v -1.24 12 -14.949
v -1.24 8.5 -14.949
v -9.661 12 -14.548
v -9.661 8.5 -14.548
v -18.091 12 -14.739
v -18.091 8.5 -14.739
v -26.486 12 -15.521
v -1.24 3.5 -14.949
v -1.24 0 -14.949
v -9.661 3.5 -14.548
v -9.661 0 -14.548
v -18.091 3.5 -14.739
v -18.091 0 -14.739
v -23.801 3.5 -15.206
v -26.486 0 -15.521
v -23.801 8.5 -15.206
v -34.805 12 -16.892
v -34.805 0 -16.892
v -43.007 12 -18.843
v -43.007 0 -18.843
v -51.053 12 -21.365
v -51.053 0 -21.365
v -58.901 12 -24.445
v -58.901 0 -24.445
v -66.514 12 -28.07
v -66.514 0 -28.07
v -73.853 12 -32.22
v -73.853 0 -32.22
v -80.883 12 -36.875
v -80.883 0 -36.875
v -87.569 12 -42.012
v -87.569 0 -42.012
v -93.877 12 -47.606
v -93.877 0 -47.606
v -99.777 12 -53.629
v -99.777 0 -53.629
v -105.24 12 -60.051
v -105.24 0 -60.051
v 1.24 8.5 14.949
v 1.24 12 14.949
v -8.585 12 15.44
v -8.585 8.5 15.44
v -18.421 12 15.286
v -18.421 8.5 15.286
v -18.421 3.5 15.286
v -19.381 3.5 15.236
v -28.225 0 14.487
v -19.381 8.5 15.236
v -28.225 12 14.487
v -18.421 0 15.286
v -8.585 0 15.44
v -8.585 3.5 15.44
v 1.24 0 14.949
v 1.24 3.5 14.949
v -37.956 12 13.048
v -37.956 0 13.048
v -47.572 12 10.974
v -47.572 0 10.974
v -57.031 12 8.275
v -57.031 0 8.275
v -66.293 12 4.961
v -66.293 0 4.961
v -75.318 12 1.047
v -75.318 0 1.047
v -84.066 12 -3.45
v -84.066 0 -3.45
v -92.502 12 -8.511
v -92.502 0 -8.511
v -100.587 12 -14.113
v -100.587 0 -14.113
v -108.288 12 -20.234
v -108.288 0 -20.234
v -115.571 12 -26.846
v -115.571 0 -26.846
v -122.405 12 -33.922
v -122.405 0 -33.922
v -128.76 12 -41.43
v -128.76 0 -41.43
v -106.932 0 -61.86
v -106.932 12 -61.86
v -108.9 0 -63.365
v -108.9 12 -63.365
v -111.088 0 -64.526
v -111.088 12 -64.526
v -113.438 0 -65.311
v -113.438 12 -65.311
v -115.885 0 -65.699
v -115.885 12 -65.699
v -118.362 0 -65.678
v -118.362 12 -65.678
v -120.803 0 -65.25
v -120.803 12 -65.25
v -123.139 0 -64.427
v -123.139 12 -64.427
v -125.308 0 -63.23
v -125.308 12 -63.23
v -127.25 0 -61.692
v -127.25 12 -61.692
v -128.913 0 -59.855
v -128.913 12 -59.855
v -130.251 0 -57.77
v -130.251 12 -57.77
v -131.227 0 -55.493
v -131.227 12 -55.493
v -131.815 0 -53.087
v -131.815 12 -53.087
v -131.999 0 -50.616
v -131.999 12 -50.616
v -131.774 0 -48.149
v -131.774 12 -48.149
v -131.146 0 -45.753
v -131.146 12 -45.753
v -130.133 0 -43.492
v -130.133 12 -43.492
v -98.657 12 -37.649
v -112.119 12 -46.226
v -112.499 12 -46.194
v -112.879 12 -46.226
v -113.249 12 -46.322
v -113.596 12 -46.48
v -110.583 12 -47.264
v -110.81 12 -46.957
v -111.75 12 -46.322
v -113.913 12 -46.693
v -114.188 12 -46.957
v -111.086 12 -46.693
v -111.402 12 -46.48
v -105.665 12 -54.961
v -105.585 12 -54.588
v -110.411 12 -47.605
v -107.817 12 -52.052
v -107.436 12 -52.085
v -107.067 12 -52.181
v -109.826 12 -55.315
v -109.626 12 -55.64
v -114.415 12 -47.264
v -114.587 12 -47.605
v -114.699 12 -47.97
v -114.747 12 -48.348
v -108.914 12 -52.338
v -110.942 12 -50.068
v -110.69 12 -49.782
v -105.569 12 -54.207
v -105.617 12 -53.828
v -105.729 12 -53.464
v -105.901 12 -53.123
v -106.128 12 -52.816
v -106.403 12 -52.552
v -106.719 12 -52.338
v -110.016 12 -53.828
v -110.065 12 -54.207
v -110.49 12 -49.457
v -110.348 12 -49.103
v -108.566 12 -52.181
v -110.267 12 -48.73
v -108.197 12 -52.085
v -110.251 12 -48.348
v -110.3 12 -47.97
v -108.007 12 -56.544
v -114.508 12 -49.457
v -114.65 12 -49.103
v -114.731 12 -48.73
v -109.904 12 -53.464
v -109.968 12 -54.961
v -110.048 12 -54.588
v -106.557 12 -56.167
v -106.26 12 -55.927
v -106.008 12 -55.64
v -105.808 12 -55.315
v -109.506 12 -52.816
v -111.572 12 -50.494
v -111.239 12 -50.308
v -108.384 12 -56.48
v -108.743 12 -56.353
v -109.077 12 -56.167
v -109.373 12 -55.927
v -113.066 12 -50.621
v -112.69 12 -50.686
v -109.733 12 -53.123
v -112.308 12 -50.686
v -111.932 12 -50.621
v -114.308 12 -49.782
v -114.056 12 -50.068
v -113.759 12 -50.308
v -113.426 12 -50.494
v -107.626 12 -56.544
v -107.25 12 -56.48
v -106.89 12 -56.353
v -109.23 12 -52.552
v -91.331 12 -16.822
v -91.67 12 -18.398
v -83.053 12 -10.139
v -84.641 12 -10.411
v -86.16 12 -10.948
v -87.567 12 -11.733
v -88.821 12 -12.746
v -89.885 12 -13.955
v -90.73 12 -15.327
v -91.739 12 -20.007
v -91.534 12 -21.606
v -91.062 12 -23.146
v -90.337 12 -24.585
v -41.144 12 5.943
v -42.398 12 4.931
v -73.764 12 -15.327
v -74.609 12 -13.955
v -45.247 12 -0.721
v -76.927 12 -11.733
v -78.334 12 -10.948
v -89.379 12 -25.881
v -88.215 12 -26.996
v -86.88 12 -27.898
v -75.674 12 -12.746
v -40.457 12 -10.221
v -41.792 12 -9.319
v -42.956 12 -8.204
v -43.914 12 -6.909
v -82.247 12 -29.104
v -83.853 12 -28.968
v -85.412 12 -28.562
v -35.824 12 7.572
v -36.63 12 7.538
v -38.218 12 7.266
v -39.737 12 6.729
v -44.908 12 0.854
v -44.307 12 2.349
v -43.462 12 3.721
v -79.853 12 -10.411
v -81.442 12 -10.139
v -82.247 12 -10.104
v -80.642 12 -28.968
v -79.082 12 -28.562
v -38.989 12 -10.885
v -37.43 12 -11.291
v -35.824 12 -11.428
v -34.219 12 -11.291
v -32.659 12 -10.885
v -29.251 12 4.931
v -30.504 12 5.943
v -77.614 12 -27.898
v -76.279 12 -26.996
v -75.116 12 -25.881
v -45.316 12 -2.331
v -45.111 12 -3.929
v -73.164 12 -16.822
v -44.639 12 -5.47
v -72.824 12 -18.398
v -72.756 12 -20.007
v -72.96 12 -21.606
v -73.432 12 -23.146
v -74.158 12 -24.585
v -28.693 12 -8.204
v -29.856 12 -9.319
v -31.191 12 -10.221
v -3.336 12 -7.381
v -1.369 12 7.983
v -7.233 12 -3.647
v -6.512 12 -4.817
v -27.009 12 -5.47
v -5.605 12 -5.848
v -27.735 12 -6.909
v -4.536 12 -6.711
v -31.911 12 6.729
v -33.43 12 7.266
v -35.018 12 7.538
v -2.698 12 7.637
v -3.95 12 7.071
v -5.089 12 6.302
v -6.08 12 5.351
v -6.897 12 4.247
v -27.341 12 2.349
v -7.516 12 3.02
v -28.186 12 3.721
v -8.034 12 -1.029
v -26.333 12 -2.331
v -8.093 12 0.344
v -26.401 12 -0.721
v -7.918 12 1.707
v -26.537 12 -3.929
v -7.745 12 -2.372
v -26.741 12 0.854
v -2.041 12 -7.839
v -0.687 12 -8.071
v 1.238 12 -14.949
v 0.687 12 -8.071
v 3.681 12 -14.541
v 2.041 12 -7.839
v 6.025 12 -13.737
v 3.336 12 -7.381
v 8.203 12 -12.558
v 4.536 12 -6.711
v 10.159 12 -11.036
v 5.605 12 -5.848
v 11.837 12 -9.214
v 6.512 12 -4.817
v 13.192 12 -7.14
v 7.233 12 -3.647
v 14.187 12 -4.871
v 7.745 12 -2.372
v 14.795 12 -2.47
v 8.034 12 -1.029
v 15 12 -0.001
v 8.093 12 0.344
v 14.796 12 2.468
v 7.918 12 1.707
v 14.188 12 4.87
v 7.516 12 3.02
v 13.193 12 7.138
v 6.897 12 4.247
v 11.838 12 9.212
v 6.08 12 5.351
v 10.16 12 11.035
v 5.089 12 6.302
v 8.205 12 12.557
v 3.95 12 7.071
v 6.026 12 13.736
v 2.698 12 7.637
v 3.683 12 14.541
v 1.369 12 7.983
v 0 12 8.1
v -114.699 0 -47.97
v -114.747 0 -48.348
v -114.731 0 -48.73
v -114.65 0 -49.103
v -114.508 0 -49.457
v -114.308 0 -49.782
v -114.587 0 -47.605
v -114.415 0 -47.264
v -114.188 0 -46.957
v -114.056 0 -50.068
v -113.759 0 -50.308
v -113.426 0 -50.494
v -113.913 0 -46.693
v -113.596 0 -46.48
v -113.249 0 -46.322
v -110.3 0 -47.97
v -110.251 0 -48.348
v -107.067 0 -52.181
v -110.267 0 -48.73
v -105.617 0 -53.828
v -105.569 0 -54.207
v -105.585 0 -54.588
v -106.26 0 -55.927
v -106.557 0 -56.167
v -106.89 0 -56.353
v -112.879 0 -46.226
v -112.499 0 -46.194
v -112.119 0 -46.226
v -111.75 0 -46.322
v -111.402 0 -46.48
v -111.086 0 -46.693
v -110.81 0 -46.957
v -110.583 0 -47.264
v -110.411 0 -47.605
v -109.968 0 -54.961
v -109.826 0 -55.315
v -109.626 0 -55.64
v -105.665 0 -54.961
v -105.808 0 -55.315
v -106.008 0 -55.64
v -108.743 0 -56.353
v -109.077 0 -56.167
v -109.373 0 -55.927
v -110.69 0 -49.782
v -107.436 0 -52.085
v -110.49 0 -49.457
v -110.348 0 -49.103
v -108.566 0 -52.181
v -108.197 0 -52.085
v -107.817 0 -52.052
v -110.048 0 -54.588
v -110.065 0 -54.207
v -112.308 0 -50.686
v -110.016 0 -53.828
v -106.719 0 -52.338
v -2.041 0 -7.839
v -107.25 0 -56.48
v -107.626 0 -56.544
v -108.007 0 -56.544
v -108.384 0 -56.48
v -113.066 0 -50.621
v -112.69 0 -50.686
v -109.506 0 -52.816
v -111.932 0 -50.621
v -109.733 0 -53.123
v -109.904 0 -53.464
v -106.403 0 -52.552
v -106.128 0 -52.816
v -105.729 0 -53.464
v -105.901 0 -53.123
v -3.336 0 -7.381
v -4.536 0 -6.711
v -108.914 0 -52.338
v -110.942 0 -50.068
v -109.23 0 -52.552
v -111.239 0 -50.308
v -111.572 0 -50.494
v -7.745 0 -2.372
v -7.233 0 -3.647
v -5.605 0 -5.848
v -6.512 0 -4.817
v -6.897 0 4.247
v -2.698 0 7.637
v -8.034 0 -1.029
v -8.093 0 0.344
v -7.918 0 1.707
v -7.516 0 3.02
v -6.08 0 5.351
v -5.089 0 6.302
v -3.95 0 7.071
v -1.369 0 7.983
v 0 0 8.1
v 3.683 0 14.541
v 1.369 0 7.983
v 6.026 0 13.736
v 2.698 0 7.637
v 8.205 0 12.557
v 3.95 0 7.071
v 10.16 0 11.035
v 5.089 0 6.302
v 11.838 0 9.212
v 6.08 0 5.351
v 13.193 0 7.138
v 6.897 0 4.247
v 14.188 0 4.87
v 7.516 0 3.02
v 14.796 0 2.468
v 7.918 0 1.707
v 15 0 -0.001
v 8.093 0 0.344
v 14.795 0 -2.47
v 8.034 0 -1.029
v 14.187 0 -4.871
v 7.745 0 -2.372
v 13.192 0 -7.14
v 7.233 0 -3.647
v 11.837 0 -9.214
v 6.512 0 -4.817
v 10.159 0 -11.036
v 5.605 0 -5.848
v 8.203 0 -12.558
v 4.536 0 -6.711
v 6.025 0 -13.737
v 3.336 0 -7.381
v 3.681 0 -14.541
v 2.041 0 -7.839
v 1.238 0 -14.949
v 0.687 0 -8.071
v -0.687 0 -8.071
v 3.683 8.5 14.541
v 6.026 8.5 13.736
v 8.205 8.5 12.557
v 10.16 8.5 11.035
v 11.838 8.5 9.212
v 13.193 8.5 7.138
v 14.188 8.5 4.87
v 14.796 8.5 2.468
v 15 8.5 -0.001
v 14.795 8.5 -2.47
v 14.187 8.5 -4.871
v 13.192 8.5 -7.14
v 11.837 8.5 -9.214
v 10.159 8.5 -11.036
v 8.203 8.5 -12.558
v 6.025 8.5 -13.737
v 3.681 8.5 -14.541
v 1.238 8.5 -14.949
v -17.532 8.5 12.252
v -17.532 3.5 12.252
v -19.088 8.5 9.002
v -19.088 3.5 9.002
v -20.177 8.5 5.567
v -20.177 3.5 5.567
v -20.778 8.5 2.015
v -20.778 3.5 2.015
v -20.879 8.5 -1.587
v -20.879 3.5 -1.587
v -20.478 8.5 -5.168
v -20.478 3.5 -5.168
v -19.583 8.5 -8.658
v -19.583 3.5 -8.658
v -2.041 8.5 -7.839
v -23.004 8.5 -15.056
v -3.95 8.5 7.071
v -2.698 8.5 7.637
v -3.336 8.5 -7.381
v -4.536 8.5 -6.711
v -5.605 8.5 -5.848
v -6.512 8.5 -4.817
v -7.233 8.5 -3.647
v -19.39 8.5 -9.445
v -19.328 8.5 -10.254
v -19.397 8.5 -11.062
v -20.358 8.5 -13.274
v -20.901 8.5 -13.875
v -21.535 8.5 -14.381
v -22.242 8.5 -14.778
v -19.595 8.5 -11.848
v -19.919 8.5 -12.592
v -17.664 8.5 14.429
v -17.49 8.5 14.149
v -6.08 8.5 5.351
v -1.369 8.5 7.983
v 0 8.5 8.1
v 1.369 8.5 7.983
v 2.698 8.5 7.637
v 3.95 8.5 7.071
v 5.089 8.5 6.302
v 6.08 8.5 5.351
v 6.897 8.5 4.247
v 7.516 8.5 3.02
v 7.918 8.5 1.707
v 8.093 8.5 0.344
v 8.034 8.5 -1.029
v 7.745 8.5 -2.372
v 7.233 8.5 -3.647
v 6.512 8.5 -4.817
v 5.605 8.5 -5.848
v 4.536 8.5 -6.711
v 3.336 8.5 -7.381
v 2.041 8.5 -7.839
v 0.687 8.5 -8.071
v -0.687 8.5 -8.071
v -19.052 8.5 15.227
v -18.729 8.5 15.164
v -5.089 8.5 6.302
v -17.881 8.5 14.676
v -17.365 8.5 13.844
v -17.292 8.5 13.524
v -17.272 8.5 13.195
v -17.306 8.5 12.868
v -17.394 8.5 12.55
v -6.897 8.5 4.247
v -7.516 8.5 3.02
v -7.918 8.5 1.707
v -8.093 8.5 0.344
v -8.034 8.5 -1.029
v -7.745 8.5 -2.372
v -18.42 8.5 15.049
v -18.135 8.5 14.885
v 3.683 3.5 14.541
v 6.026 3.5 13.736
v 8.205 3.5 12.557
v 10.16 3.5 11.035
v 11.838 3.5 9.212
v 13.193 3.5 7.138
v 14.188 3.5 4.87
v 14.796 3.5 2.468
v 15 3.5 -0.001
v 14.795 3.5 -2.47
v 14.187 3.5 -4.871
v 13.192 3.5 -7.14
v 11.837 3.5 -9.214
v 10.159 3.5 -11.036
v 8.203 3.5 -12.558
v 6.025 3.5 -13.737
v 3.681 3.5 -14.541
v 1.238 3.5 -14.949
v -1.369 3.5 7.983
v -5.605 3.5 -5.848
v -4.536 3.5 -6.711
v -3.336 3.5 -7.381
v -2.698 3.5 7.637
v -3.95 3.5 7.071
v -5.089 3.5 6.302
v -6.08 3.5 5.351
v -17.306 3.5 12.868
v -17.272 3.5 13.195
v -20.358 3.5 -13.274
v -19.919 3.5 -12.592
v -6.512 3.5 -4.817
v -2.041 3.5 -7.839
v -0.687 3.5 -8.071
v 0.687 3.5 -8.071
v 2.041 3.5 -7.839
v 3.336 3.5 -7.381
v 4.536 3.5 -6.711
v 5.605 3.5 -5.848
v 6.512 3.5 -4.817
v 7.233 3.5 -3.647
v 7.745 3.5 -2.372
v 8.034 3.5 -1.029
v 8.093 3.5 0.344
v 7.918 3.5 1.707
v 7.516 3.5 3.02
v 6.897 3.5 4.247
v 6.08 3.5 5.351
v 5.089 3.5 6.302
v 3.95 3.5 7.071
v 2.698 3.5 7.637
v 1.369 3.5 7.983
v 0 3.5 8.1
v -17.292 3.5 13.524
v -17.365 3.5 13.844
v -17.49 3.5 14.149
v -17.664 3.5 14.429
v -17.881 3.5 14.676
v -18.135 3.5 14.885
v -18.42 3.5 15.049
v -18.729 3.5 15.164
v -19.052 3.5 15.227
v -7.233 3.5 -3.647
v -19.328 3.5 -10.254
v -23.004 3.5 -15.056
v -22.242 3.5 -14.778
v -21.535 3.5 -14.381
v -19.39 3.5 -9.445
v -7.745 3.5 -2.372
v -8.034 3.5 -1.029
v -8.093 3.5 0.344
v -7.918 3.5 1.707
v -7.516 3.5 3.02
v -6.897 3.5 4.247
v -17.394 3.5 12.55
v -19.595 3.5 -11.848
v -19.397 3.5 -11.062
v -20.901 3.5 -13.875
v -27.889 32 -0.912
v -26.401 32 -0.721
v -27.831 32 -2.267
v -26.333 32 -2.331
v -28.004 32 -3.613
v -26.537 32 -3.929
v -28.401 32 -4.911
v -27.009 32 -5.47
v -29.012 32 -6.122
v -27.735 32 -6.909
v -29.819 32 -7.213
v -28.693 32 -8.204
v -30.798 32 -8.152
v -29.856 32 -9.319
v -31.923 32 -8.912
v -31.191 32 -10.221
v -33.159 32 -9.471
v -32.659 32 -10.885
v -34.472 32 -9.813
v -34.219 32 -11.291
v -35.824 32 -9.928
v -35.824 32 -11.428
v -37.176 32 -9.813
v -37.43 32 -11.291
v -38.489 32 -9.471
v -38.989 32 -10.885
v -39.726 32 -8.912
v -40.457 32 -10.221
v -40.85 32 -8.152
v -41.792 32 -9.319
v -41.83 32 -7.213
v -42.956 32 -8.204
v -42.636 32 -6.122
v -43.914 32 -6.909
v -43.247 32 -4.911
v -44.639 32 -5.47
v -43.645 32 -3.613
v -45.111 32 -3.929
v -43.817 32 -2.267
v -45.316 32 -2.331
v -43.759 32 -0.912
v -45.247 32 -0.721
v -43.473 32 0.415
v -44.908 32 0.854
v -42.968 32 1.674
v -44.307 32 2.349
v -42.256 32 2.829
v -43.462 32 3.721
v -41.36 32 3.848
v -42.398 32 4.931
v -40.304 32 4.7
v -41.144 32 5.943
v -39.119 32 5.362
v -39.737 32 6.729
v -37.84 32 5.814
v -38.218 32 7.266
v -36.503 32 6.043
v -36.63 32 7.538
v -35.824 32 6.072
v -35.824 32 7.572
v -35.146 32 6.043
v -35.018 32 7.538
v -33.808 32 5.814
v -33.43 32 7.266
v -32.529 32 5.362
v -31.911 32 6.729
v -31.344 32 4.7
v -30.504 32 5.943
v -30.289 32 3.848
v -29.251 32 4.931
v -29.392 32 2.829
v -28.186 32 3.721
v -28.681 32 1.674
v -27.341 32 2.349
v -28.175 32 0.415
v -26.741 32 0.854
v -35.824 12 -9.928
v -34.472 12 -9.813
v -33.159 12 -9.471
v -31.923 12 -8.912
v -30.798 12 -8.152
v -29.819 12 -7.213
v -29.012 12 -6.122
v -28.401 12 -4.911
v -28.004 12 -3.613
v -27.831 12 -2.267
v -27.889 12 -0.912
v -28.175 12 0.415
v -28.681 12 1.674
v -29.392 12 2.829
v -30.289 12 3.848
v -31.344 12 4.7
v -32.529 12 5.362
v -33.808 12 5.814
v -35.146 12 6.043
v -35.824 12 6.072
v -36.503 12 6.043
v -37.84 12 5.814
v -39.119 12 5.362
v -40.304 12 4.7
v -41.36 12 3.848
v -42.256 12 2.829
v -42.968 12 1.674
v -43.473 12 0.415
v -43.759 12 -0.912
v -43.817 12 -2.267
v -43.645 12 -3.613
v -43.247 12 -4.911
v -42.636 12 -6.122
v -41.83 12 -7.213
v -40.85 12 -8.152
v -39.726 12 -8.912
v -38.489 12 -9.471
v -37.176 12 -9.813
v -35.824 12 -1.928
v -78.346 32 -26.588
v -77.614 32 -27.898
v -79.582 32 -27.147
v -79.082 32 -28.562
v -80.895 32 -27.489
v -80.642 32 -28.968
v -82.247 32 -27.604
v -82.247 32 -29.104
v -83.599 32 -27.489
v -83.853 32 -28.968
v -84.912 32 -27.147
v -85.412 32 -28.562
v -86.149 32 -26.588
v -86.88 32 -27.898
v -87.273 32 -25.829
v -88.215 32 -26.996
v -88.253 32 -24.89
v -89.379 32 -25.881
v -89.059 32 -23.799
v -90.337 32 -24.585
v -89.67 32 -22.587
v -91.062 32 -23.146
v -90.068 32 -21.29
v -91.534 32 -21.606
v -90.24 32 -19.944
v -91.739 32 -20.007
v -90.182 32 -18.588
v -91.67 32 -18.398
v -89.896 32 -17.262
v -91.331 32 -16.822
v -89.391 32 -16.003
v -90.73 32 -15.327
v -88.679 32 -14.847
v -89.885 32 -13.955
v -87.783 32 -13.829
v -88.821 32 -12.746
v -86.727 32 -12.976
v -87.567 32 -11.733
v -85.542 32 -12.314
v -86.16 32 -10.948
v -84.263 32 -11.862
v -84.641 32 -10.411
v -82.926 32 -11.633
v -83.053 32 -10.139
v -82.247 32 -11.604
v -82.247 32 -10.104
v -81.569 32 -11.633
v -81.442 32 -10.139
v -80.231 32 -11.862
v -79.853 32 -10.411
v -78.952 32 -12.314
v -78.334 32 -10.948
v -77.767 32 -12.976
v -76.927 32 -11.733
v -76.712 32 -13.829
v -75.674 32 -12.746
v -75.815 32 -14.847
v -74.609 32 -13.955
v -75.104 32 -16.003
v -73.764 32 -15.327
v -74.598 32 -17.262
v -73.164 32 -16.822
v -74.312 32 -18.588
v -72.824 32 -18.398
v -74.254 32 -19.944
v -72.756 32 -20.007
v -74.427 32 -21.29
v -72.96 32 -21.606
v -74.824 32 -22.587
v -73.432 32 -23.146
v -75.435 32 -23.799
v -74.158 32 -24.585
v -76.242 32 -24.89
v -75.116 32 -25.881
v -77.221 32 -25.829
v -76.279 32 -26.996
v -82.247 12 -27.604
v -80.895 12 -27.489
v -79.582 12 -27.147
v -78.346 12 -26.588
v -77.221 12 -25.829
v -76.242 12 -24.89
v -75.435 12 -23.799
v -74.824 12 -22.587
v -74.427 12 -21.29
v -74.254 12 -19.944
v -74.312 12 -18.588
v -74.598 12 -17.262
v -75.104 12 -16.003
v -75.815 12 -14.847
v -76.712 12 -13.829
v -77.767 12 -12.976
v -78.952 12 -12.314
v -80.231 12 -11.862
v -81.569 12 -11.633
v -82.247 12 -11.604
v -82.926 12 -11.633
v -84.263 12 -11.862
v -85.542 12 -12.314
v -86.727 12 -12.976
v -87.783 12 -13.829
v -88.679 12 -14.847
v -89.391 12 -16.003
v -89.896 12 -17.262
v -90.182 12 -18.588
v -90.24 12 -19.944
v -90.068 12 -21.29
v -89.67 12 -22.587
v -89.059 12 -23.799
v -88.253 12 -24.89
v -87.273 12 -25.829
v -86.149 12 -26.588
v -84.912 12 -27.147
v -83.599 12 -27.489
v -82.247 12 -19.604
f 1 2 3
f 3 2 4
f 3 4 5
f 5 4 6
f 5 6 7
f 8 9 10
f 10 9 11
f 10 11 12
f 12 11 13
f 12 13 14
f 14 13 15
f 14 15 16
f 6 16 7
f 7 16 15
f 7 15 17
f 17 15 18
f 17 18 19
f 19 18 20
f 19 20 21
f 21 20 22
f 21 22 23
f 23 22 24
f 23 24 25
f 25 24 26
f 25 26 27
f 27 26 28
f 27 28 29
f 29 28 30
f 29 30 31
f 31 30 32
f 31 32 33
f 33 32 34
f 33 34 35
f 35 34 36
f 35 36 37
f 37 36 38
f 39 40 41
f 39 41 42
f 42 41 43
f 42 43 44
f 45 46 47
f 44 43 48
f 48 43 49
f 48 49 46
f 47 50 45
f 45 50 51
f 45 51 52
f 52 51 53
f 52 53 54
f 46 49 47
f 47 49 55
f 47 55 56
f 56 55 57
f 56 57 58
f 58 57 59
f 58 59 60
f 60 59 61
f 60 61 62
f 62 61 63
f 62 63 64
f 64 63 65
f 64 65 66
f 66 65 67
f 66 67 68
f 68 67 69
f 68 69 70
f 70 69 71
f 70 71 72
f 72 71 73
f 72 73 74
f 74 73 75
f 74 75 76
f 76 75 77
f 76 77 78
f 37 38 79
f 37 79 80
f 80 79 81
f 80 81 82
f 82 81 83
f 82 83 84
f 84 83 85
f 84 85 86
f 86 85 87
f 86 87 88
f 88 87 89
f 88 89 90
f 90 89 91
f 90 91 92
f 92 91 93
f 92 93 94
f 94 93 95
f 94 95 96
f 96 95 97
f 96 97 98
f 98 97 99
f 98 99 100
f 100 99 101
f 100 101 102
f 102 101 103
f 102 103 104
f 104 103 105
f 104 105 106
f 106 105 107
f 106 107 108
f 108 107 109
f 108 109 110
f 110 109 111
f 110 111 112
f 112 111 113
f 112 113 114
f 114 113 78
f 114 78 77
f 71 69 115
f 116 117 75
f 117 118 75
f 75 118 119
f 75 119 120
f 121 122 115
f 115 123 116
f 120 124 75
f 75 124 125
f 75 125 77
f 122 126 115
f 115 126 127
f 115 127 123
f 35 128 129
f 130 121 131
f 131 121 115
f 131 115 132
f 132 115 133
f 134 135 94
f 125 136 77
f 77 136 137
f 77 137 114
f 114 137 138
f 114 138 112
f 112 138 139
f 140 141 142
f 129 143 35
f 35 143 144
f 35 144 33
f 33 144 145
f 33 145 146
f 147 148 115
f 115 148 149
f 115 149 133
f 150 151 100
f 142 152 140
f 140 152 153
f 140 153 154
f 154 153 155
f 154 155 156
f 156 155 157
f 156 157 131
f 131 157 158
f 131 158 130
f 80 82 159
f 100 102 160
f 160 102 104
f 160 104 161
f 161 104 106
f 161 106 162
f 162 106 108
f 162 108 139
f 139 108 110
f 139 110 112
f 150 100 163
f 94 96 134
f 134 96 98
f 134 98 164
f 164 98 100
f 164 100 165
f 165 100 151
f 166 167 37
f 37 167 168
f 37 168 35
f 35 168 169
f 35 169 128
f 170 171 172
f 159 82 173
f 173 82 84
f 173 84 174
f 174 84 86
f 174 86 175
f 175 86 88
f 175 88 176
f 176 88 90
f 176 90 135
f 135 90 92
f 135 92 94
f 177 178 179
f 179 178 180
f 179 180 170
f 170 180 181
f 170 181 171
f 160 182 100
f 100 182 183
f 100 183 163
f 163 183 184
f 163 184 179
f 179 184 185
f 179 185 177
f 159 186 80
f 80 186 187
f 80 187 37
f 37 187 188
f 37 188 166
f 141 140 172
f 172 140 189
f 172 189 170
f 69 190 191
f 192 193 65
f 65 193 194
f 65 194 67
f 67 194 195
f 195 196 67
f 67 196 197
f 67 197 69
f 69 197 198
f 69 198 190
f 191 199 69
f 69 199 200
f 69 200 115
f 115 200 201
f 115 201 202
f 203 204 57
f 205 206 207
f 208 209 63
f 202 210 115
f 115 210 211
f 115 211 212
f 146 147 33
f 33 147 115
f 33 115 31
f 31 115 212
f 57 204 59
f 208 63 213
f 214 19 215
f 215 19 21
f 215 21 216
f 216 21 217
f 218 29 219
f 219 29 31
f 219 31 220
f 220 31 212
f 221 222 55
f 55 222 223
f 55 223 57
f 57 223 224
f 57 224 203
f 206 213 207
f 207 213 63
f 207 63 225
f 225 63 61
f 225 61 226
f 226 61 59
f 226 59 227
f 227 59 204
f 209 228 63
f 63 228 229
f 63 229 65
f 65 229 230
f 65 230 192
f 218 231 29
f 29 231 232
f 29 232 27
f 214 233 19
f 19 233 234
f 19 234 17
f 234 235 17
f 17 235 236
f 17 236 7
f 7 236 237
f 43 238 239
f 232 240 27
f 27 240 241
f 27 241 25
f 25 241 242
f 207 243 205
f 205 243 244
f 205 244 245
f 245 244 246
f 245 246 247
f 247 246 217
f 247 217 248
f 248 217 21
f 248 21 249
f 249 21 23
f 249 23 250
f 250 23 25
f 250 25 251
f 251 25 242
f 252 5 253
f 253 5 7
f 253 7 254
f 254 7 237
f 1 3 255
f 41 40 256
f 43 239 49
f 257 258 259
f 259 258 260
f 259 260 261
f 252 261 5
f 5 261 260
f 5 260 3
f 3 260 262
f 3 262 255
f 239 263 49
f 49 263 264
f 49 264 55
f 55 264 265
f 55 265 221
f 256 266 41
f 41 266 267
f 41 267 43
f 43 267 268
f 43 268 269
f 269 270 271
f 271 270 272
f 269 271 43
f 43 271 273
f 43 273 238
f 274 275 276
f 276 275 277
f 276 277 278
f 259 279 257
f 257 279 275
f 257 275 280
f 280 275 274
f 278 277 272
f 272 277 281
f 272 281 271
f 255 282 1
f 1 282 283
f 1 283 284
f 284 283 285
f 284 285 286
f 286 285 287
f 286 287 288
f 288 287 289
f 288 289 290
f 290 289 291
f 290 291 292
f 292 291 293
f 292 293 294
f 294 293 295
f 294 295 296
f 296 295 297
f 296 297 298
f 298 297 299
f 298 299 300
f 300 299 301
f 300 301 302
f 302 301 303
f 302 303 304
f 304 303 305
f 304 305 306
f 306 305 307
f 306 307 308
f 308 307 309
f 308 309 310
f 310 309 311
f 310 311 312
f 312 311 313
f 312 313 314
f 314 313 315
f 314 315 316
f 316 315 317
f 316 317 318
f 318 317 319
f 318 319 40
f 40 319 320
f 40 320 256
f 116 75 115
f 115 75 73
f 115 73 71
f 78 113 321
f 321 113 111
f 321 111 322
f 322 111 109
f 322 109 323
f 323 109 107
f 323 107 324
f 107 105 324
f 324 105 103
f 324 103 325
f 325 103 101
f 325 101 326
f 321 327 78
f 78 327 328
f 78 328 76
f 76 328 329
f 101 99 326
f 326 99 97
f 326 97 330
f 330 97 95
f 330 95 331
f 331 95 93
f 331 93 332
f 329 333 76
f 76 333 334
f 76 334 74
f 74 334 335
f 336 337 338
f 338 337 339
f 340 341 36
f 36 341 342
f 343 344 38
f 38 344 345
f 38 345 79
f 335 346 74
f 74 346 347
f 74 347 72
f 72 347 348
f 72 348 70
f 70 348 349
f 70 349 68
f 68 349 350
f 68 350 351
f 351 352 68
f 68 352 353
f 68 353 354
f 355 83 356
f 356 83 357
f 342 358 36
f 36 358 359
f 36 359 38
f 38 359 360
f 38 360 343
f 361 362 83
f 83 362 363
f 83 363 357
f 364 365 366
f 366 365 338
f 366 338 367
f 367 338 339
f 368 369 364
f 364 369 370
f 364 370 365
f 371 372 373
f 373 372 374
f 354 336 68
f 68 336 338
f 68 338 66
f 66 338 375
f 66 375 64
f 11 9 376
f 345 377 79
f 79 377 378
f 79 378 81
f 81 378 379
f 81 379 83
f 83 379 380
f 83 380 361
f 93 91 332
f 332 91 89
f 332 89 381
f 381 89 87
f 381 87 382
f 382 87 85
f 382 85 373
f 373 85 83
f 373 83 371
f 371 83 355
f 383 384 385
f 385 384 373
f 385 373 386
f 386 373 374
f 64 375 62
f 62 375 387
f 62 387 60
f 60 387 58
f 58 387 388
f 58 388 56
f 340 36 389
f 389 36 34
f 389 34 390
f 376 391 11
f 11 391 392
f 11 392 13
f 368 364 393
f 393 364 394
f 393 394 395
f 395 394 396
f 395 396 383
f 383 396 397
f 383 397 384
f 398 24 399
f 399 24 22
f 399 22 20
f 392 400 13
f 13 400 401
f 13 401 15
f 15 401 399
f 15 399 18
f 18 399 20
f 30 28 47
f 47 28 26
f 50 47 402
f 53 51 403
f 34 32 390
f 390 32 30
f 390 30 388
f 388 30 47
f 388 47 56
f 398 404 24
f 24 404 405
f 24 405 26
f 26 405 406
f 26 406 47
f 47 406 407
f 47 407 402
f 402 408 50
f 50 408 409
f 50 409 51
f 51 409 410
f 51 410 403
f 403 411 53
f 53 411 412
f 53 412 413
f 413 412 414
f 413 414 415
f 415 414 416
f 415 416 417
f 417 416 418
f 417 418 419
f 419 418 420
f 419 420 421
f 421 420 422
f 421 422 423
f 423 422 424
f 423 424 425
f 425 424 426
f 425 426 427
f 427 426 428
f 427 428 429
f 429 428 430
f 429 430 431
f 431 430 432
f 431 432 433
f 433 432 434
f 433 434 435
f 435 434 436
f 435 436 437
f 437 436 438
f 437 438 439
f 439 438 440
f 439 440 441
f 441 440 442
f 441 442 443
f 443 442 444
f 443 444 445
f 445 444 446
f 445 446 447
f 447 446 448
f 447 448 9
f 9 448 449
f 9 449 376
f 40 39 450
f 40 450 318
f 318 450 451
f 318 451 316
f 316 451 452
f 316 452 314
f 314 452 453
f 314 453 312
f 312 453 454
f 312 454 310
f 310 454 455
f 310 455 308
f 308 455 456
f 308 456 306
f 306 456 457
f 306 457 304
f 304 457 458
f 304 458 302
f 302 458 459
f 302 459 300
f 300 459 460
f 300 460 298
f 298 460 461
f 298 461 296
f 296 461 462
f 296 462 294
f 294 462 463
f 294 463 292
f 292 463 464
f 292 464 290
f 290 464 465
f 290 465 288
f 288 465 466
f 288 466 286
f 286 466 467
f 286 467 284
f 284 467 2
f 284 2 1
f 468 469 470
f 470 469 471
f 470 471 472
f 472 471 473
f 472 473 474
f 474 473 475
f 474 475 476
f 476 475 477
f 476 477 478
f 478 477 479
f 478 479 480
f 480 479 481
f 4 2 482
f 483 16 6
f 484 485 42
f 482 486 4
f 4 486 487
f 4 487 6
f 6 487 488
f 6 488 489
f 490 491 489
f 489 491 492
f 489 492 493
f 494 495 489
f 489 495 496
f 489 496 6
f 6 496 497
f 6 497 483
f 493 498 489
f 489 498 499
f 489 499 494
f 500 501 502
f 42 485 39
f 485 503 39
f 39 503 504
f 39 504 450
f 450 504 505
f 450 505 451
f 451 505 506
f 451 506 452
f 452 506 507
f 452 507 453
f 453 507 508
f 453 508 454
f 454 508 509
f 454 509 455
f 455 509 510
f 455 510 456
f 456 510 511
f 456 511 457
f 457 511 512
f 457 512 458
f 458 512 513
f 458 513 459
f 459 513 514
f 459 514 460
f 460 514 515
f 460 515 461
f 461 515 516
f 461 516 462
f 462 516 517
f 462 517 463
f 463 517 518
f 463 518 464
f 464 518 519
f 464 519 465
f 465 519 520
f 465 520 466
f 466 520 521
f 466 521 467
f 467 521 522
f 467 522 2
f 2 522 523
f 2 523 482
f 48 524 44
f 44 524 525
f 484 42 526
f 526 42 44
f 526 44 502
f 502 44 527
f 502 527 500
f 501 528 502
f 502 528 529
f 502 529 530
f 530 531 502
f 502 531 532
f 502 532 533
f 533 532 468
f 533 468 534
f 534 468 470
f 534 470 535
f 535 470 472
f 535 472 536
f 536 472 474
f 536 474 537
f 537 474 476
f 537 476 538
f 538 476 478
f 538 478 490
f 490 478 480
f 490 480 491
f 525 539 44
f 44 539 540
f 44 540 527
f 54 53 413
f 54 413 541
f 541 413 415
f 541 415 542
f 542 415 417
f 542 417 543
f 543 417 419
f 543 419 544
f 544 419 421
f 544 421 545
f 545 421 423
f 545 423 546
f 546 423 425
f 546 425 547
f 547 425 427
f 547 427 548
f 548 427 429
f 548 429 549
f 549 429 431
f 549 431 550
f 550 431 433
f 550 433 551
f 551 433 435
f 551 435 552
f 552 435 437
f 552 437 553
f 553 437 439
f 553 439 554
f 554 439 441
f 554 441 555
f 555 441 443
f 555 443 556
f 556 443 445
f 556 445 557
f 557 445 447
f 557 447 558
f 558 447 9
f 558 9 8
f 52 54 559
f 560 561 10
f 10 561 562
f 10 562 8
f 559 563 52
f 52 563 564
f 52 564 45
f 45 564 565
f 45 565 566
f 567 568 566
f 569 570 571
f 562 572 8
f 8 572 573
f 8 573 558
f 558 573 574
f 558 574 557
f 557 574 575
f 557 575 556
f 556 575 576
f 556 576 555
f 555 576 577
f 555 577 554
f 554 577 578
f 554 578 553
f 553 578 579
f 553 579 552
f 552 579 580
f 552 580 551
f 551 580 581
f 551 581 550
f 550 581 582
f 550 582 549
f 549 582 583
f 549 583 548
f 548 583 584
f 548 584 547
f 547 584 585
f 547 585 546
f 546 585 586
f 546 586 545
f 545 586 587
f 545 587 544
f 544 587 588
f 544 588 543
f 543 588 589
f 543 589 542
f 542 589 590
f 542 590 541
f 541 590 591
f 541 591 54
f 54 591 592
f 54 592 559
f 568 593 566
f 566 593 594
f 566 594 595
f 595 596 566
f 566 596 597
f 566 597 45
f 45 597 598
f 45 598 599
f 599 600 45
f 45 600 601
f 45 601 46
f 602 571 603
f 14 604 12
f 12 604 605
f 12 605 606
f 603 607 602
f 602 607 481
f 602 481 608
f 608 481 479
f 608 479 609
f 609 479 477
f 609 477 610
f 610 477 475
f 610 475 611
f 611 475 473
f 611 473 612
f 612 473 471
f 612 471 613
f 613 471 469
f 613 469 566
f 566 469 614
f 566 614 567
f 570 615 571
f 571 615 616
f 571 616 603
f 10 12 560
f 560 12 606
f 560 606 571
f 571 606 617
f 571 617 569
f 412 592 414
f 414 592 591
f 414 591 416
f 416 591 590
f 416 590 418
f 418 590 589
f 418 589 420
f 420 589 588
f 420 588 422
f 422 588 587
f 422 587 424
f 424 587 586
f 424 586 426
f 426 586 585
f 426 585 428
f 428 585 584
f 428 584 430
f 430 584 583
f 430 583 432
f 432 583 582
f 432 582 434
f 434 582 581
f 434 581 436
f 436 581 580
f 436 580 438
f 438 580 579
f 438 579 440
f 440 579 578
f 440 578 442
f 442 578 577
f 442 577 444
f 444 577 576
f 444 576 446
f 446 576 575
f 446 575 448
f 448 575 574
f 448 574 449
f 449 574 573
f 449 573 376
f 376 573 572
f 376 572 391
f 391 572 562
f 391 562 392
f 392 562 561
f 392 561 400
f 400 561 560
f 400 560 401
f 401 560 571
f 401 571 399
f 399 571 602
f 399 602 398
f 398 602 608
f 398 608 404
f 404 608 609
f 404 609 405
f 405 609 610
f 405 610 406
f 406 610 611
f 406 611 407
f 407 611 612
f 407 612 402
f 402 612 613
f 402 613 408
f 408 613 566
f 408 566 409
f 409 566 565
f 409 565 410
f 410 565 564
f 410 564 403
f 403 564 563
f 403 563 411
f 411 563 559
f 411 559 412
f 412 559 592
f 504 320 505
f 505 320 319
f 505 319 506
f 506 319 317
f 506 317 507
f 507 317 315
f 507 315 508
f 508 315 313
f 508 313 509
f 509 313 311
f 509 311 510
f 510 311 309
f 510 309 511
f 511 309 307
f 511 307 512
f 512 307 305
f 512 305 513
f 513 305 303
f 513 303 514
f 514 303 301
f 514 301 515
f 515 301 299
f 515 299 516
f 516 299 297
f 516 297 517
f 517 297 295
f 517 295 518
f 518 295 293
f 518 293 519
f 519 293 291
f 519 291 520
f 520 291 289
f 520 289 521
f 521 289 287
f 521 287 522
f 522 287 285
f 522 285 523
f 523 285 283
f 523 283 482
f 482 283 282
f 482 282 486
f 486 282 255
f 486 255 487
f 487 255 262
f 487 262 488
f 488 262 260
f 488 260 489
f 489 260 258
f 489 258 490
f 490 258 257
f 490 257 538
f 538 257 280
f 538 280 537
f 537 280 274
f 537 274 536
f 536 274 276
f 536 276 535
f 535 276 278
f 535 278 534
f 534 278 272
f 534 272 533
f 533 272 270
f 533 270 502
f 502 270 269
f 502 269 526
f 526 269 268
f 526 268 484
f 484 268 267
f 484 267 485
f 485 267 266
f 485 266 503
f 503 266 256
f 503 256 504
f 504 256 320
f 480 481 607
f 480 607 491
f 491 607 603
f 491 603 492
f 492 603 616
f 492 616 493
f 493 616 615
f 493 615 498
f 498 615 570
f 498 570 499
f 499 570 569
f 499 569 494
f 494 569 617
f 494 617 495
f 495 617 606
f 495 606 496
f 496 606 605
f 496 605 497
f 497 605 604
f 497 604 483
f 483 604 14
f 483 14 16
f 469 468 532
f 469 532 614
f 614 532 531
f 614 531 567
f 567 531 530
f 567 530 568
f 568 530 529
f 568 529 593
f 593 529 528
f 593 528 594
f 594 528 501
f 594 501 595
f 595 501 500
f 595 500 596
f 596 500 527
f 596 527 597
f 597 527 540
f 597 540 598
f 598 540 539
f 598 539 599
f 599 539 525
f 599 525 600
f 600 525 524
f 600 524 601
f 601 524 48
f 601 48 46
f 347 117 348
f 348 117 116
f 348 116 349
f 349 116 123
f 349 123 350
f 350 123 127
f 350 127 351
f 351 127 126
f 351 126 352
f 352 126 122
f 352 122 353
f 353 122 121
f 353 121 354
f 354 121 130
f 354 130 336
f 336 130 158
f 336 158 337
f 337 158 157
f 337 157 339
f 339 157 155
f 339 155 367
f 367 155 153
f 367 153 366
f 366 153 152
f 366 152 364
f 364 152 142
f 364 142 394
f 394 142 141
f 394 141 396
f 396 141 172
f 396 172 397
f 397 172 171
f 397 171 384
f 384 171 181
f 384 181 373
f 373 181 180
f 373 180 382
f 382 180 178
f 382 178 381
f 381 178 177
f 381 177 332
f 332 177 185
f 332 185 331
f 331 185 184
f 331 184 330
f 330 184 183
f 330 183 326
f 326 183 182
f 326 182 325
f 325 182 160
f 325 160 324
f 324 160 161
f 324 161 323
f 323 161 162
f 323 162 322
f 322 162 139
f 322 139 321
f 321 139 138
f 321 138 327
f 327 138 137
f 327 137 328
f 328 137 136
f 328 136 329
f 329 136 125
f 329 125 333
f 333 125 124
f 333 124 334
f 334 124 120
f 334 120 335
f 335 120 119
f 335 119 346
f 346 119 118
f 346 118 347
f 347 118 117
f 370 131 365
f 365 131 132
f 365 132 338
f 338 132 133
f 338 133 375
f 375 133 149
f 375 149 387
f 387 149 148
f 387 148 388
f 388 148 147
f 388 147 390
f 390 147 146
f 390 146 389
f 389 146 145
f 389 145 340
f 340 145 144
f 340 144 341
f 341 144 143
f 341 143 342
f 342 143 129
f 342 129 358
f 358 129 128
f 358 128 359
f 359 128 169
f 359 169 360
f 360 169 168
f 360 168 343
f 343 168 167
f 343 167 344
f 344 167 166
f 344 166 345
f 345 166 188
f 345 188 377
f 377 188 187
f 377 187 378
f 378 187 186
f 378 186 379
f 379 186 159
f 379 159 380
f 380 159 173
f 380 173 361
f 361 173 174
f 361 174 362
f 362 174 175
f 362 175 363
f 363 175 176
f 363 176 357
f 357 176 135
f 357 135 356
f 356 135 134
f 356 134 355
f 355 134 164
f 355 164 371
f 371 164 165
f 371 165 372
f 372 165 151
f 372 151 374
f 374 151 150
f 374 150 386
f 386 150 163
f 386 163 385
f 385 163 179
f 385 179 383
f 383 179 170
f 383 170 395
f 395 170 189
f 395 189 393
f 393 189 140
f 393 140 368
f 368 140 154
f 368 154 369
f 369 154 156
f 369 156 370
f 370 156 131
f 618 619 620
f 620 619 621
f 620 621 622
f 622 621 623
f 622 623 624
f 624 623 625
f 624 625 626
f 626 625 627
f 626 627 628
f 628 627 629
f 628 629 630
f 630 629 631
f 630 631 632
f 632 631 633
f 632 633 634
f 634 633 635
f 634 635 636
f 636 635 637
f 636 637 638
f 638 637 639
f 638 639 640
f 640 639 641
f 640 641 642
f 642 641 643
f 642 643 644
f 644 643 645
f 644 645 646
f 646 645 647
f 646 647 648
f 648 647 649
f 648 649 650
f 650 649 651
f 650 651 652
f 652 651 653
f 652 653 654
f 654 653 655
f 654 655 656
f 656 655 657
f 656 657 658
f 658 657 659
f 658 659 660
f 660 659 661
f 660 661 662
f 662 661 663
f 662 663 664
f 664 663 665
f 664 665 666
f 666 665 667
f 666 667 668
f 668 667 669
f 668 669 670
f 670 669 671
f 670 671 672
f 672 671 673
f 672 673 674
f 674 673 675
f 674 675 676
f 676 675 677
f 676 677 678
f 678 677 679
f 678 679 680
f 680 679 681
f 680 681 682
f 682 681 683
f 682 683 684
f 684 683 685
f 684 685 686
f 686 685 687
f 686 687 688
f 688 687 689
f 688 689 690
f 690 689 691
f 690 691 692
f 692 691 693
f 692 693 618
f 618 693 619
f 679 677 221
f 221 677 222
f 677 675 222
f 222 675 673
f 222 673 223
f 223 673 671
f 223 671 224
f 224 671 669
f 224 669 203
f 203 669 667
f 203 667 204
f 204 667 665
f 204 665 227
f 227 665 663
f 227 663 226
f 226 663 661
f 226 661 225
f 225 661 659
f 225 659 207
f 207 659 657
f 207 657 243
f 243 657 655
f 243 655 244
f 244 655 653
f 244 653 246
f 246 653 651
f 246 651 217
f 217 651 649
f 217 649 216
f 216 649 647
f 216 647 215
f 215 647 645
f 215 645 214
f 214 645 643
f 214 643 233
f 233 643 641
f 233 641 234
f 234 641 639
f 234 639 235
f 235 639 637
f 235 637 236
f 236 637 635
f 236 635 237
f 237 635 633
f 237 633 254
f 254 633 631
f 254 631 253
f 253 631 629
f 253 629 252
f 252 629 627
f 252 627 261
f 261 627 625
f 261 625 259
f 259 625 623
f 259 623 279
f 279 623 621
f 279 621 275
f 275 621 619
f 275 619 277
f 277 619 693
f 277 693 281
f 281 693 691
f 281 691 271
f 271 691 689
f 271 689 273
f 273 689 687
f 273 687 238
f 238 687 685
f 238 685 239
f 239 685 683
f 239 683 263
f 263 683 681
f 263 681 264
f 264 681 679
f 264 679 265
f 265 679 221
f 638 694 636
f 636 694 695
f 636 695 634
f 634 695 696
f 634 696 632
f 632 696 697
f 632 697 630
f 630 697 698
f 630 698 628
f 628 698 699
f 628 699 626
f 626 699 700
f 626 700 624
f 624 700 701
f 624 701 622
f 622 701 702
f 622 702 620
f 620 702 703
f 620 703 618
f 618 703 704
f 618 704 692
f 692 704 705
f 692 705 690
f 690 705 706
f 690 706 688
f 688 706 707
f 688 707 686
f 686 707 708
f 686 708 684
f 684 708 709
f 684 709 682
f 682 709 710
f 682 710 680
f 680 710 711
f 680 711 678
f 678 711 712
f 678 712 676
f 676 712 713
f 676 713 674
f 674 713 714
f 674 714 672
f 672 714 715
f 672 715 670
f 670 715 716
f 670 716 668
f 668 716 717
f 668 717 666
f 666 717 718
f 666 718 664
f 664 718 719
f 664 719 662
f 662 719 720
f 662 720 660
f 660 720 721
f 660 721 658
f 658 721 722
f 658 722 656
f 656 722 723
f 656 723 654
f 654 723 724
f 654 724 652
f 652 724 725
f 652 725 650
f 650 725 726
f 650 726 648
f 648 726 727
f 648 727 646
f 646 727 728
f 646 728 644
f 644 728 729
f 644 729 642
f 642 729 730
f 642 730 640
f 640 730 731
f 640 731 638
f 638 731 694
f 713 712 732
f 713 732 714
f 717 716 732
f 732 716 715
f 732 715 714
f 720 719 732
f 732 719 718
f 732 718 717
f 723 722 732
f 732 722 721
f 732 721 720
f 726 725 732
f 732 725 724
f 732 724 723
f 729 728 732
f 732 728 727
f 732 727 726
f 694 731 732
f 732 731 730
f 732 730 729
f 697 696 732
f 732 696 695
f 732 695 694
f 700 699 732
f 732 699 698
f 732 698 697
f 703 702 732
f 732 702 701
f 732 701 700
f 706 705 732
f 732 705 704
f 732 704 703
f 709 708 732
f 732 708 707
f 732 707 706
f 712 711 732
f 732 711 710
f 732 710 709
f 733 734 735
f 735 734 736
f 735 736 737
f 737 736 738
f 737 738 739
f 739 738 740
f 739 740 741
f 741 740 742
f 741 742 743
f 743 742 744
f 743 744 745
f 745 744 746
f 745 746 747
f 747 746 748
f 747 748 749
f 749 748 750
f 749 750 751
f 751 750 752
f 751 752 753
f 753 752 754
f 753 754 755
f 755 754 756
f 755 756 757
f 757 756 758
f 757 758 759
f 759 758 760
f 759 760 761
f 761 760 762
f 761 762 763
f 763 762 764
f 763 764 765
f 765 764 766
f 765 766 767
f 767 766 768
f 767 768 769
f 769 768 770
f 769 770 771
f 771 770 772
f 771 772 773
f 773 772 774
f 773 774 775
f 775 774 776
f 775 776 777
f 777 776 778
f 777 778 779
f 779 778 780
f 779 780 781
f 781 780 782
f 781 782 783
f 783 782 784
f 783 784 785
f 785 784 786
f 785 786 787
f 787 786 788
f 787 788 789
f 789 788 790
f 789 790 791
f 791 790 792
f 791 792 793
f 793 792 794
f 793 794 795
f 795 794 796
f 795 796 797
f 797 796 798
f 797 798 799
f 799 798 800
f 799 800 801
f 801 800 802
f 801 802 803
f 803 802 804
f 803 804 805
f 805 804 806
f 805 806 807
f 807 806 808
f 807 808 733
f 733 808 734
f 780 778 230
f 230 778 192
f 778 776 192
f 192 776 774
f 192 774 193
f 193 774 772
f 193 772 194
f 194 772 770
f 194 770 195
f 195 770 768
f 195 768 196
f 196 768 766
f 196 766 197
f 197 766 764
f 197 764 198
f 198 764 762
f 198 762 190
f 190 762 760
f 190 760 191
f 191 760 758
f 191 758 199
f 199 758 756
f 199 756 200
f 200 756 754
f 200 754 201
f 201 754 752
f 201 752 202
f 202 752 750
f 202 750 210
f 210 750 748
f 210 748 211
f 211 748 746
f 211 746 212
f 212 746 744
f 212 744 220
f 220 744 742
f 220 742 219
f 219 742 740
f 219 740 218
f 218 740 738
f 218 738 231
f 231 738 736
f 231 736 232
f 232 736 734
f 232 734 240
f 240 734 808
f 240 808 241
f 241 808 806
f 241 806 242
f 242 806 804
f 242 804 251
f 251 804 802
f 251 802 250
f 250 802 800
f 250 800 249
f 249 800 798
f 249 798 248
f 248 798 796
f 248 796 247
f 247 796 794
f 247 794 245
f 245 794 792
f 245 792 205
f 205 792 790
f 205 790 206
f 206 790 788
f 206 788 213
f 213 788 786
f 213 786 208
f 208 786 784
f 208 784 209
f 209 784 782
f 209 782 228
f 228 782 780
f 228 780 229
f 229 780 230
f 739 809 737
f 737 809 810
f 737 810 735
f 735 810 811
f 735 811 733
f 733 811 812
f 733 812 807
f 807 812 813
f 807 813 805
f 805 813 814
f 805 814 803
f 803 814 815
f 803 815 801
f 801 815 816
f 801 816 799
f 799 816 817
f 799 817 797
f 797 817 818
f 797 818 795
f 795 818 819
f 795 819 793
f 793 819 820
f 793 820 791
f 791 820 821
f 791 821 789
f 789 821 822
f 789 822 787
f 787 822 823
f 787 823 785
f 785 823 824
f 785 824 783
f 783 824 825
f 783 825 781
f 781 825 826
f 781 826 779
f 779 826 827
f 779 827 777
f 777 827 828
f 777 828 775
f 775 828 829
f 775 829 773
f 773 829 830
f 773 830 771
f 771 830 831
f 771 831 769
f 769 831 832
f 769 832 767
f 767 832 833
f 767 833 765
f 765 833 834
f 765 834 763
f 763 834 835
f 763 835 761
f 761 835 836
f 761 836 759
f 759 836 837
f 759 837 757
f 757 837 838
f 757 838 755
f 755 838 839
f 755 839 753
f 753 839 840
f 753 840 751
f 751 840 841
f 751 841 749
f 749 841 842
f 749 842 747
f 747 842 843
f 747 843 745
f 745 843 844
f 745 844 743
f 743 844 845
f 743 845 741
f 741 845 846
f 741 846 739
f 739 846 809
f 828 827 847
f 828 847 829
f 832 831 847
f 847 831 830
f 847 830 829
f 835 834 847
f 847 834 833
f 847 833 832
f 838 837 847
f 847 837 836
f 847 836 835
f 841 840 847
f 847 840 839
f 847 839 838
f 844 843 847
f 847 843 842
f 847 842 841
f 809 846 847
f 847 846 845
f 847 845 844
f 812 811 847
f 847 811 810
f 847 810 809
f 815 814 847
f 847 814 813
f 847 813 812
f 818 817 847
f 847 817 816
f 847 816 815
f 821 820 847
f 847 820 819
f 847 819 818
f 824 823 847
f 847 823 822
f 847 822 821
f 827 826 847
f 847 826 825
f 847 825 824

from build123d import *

# Parameters (mm, degrees)
BOSS_EXTRUDE4_DEPTH = 11.999999999999996
BOSS_EXTRUDE5_DEPTH = 3.5
BOSS_EXTRUDE6_DEPTH = 12
CUT_EXTRUDE2_DEPTH  = 8.5
BOSS_EXTRUDE7_DEPTH = 3.5000000000000004
SKETCH2_R           = 8.1
CUT_EXTRUDE3_DEPTH  = 12
FILLET1_R           = 5
FILLET2_R           = 2
SKETCH3_R           = 2.2499999999999964
CUT_EXTRUDE4_DEPTH  = 12
SKETCH4_R           = 9.500000000000002
SKETCH4_R_2         = 8.000000000000002
SKETCH4_R_3         = 9.499999999999995
SKETCH4_R_4         = 7.999999999999998
BOSS_EXTRUDE8_DEPTH = 20


with BuildPart() as part:
    # Sketch1 → Boss-Extrude4 (new body)
    with BuildSketch(Plane(origin=(0, 0, 0), x_dir=(1, 0, 0), z_dir=(0, 1, 0))):
        with BuildLine():
            ThreePointArc((-105.23956914411866, 60.05130546378884), (-126.31086817026393, 62.500868149406244), (-128.76043085588134, 41.429569123260976))
            ThreePointArc((-128.76043085588134, 41.42956912326096), (-78.3921989201775, 0.4513014224205847), (-15.424890802752289, -15.400995588922257))
            ThreePointArc((-15.424890802752284, -15.400995588922251), (-20.878753235246265, -0.5691494549701637), (-16.67921047602729, 14.665420305521598))
            ThreePointArc((-16.679210476027265, 14.665420305521593), (-65.8857769449076, 27.74562513419724), (-105.23956914411866, 60.05130546378885))
        make_face()
    extrude(amount=BOSS_EXTRUDE4_DEPTH)

    # Sketch1<6> → Boss-Extrude5 (add)
    with BuildSketch(Plane(origin=(0, 0, 0), x_dir=(1, 0, 0), z_dir=(0, 1, 0))):
        with BuildLine():
            ThreePointArc((-16.67921047602729, 14.665420305521598), (-20.878753235246265, -0.5691494549701637), (-15.424890802752284, -15.400995588922251))
            ThreePointArc((-15.424890802752289, -15.400995588922257), (-7.086372530747029, -15.406529466177687), (1.2395691441186596, -14.94869453621115))
            ThreePointArc((1.2395691441186607, -14.948694536211157), (14.948694536211152, 1.2395691441186514), (-1.2395691441186483, 14.948694536211152))
            ThreePointArc((-1.2395691441186347, 14.94869453621115), (-8.954828429393212, 14.55844291928571), (-16.679210476027265, 14.665420305521593))
        make_face()
    extrude(amount=BOSS_EXTRUDE5_DEPTH)

    # Sketch1<8> → Boss-Extrude6 (add)
    with BuildSketch(Plane(origin=(0, 0, 0), x_dir=(1, 0, 0), z_dir=(0, 1, 0))):
        with BuildLine():
            ThreePointArc((-16.67921047602729, 14.665420305521598), (-20.878753235246265, -0.5691494549701637), (-15.424890802752284, -15.400995588922251))
            ThreePointArc((-15.424890802752289, -15.400995588922257), (-7.086372530747029, -15.406529466177687), (1.2395691441186596, -14.94869453621115))
            ThreePointArc((1.2395691441186607, -14.948694536211157), (14.948694536211152, 1.2395691441186514), (-1.2395691441186483, 14.948694536211152))
            ThreePointArc((-1.2395691441186347, 14.94869453621115), (-8.954828429393212, 14.55844291928571), (-16.679210476027265, 14.665420305521593))
        make_face()
    extrude(amount=BOSS_EXTRUDE6_DEPTH)

    # Sketch1<9> → Cut-Extrude2 (cut)
    with BuildSketch(Plane(origin=(0, 0, 0), x_dir=(1, 0, 0), z_dir=(0, 1, 0))):
        with BuildLine():
            ThreePointArc((-16.67921047602729, 14.665420305521598), (-20.878753235246265, -0.5691494549701637), (-15.424890802752284, -15.400995588922251))
            ThreePointArc((-15.424890802752289, -15.400995588922257), (-7.086372530747029, -15.406529466177687), (1.2395691441186596, -14.94869453621115))
            ThreePointArc((1.2395691441186607, -14.948694536211157), (14.948694536211152, 1.2395691441186514), (-1.2395691441186483, 14.948694536211152))
            ThreePointArc((-1.2395691441186347, 14.94869453621115), (-8.954828429393212, 14.55844291928571), (-16.679210476027265, 14.665420305521593))
        make_face()
    extrude(amount=CUT_EXTRUDE2_DEPTH, mode=Mode.SUBTRACT)

    # Sketch1<10> → Boss-Extrude7 (add)
    with BuildSketch(Plane(origin=(0, 0, 0), x_dir=(1, 0, 0), z_dir=(0, 1, 0))):
        with BuildLine():
            ThreePointArc((-16.67921047602729, 14.665420305521598), (-20.878753235246265, -0.5691494549701637), (-15.424890802752284, -15.400995588922251))
            ThreePointArc((-15.424890802752289, -15.400995588922257), (-7.086372530747029, -15.406529466177687), (1.2395691441186596, -14.94869453621115))
            ThreePointArc((1.2395691441186607, -14.948694536211157), (14.948694536211152, 1.2395691441186514), (-1.2395691441186483, 14.948694536211152))
            ThreePointArc((-1.2395691441186347, 14.94869453621115), (-8.954828429393212, 14.55844291928571), (-16.679210476027265, 14.665420305521593))
        make_face()
    extrude(amount=BOSS_EXTRUDE7_DEPTH)

    # Sketch2 → Cut-Extrude3 (cut)
    with BuildSketch(Plane(origin=(0, 11.999999999999996, 0), x_dir=(1, 0, 0), z_dir=(0, 1, 0))):
        Circle(SKETCH2_R)
    extrude(amount=-CUT_EXTRUDE3_DEPTH, mode=Mode.SUBTRACT)

    # Fillet1
    fillet1_edges = [part.edges().sort_by_distance(p)[0] for p in [
        (-16.67921047602728, 6, -14.665420305521597),
    ]]
    fillet(fillet1_edges, radius=FILLET1_R)

    # Fillet2
    fillet2_edges = [part.edges().sort_by_distance(p)[0] for p in [
        (-15.424890802752289, 6, 15.400995588922266),
    ]]
    fillet(fillet2_edges, radius=FILLET2_R)

    # Sketch3 → Cut-Extrude4 (cut)
    with BuildSketch(Plane(origin=(0, 11.999999999999996, 0), x_dir=(1, 0, 0), z_dir=(0, 1, 0))):
        with Locations((-107.81660725396851, 54.30249040498051)):
            Circle(SKETCH3_R)
        with Locations((-112.49908312253997, 48.44378579216329)):
            Circle(SKETCH3_R)
    extrude(amount=-CUT_EXTRUDE4_DEPTH, mode=Mode.SUBTRACT)

    # Sketch4 → Boss-Extrude8 (add)
    # profile 1 of 2: a face of its own
    with BuildSketch(Plane(origin=(0, 11.999999999999996, 0), x_dir=(1, 0, 0), z_dir=(0, 1, 0))):
        with Locations((-35.824132830362714, 1.9278264844930209)):
            Circle(SKETCH4_R)
        with Locations((-35.824132830362714, 1.9278264844930209)):
            Circle(SKETCH4_R_2, mode=Mode.SUBTRACT)
    # profile 2 of 2: a face of its own
    with BuildSketch(Plane(origin=(0, 11.999999999999996, 0), x_dir=(1, 0, 0), z_dir=(0, 1, 0))):
        with Locations((-82.24716798080135, 19.60428986869888)):
            Circle(SKETCH4_R_3)
        with Locations((-82.24716798080135, 19.60428986869888)):
            Circle(SKETCH4_R_4, mode=Mode.SUBTRACT)
    extrude(amount=BOSS_EXTRUDE8_DEPTH)


solid = part.part
